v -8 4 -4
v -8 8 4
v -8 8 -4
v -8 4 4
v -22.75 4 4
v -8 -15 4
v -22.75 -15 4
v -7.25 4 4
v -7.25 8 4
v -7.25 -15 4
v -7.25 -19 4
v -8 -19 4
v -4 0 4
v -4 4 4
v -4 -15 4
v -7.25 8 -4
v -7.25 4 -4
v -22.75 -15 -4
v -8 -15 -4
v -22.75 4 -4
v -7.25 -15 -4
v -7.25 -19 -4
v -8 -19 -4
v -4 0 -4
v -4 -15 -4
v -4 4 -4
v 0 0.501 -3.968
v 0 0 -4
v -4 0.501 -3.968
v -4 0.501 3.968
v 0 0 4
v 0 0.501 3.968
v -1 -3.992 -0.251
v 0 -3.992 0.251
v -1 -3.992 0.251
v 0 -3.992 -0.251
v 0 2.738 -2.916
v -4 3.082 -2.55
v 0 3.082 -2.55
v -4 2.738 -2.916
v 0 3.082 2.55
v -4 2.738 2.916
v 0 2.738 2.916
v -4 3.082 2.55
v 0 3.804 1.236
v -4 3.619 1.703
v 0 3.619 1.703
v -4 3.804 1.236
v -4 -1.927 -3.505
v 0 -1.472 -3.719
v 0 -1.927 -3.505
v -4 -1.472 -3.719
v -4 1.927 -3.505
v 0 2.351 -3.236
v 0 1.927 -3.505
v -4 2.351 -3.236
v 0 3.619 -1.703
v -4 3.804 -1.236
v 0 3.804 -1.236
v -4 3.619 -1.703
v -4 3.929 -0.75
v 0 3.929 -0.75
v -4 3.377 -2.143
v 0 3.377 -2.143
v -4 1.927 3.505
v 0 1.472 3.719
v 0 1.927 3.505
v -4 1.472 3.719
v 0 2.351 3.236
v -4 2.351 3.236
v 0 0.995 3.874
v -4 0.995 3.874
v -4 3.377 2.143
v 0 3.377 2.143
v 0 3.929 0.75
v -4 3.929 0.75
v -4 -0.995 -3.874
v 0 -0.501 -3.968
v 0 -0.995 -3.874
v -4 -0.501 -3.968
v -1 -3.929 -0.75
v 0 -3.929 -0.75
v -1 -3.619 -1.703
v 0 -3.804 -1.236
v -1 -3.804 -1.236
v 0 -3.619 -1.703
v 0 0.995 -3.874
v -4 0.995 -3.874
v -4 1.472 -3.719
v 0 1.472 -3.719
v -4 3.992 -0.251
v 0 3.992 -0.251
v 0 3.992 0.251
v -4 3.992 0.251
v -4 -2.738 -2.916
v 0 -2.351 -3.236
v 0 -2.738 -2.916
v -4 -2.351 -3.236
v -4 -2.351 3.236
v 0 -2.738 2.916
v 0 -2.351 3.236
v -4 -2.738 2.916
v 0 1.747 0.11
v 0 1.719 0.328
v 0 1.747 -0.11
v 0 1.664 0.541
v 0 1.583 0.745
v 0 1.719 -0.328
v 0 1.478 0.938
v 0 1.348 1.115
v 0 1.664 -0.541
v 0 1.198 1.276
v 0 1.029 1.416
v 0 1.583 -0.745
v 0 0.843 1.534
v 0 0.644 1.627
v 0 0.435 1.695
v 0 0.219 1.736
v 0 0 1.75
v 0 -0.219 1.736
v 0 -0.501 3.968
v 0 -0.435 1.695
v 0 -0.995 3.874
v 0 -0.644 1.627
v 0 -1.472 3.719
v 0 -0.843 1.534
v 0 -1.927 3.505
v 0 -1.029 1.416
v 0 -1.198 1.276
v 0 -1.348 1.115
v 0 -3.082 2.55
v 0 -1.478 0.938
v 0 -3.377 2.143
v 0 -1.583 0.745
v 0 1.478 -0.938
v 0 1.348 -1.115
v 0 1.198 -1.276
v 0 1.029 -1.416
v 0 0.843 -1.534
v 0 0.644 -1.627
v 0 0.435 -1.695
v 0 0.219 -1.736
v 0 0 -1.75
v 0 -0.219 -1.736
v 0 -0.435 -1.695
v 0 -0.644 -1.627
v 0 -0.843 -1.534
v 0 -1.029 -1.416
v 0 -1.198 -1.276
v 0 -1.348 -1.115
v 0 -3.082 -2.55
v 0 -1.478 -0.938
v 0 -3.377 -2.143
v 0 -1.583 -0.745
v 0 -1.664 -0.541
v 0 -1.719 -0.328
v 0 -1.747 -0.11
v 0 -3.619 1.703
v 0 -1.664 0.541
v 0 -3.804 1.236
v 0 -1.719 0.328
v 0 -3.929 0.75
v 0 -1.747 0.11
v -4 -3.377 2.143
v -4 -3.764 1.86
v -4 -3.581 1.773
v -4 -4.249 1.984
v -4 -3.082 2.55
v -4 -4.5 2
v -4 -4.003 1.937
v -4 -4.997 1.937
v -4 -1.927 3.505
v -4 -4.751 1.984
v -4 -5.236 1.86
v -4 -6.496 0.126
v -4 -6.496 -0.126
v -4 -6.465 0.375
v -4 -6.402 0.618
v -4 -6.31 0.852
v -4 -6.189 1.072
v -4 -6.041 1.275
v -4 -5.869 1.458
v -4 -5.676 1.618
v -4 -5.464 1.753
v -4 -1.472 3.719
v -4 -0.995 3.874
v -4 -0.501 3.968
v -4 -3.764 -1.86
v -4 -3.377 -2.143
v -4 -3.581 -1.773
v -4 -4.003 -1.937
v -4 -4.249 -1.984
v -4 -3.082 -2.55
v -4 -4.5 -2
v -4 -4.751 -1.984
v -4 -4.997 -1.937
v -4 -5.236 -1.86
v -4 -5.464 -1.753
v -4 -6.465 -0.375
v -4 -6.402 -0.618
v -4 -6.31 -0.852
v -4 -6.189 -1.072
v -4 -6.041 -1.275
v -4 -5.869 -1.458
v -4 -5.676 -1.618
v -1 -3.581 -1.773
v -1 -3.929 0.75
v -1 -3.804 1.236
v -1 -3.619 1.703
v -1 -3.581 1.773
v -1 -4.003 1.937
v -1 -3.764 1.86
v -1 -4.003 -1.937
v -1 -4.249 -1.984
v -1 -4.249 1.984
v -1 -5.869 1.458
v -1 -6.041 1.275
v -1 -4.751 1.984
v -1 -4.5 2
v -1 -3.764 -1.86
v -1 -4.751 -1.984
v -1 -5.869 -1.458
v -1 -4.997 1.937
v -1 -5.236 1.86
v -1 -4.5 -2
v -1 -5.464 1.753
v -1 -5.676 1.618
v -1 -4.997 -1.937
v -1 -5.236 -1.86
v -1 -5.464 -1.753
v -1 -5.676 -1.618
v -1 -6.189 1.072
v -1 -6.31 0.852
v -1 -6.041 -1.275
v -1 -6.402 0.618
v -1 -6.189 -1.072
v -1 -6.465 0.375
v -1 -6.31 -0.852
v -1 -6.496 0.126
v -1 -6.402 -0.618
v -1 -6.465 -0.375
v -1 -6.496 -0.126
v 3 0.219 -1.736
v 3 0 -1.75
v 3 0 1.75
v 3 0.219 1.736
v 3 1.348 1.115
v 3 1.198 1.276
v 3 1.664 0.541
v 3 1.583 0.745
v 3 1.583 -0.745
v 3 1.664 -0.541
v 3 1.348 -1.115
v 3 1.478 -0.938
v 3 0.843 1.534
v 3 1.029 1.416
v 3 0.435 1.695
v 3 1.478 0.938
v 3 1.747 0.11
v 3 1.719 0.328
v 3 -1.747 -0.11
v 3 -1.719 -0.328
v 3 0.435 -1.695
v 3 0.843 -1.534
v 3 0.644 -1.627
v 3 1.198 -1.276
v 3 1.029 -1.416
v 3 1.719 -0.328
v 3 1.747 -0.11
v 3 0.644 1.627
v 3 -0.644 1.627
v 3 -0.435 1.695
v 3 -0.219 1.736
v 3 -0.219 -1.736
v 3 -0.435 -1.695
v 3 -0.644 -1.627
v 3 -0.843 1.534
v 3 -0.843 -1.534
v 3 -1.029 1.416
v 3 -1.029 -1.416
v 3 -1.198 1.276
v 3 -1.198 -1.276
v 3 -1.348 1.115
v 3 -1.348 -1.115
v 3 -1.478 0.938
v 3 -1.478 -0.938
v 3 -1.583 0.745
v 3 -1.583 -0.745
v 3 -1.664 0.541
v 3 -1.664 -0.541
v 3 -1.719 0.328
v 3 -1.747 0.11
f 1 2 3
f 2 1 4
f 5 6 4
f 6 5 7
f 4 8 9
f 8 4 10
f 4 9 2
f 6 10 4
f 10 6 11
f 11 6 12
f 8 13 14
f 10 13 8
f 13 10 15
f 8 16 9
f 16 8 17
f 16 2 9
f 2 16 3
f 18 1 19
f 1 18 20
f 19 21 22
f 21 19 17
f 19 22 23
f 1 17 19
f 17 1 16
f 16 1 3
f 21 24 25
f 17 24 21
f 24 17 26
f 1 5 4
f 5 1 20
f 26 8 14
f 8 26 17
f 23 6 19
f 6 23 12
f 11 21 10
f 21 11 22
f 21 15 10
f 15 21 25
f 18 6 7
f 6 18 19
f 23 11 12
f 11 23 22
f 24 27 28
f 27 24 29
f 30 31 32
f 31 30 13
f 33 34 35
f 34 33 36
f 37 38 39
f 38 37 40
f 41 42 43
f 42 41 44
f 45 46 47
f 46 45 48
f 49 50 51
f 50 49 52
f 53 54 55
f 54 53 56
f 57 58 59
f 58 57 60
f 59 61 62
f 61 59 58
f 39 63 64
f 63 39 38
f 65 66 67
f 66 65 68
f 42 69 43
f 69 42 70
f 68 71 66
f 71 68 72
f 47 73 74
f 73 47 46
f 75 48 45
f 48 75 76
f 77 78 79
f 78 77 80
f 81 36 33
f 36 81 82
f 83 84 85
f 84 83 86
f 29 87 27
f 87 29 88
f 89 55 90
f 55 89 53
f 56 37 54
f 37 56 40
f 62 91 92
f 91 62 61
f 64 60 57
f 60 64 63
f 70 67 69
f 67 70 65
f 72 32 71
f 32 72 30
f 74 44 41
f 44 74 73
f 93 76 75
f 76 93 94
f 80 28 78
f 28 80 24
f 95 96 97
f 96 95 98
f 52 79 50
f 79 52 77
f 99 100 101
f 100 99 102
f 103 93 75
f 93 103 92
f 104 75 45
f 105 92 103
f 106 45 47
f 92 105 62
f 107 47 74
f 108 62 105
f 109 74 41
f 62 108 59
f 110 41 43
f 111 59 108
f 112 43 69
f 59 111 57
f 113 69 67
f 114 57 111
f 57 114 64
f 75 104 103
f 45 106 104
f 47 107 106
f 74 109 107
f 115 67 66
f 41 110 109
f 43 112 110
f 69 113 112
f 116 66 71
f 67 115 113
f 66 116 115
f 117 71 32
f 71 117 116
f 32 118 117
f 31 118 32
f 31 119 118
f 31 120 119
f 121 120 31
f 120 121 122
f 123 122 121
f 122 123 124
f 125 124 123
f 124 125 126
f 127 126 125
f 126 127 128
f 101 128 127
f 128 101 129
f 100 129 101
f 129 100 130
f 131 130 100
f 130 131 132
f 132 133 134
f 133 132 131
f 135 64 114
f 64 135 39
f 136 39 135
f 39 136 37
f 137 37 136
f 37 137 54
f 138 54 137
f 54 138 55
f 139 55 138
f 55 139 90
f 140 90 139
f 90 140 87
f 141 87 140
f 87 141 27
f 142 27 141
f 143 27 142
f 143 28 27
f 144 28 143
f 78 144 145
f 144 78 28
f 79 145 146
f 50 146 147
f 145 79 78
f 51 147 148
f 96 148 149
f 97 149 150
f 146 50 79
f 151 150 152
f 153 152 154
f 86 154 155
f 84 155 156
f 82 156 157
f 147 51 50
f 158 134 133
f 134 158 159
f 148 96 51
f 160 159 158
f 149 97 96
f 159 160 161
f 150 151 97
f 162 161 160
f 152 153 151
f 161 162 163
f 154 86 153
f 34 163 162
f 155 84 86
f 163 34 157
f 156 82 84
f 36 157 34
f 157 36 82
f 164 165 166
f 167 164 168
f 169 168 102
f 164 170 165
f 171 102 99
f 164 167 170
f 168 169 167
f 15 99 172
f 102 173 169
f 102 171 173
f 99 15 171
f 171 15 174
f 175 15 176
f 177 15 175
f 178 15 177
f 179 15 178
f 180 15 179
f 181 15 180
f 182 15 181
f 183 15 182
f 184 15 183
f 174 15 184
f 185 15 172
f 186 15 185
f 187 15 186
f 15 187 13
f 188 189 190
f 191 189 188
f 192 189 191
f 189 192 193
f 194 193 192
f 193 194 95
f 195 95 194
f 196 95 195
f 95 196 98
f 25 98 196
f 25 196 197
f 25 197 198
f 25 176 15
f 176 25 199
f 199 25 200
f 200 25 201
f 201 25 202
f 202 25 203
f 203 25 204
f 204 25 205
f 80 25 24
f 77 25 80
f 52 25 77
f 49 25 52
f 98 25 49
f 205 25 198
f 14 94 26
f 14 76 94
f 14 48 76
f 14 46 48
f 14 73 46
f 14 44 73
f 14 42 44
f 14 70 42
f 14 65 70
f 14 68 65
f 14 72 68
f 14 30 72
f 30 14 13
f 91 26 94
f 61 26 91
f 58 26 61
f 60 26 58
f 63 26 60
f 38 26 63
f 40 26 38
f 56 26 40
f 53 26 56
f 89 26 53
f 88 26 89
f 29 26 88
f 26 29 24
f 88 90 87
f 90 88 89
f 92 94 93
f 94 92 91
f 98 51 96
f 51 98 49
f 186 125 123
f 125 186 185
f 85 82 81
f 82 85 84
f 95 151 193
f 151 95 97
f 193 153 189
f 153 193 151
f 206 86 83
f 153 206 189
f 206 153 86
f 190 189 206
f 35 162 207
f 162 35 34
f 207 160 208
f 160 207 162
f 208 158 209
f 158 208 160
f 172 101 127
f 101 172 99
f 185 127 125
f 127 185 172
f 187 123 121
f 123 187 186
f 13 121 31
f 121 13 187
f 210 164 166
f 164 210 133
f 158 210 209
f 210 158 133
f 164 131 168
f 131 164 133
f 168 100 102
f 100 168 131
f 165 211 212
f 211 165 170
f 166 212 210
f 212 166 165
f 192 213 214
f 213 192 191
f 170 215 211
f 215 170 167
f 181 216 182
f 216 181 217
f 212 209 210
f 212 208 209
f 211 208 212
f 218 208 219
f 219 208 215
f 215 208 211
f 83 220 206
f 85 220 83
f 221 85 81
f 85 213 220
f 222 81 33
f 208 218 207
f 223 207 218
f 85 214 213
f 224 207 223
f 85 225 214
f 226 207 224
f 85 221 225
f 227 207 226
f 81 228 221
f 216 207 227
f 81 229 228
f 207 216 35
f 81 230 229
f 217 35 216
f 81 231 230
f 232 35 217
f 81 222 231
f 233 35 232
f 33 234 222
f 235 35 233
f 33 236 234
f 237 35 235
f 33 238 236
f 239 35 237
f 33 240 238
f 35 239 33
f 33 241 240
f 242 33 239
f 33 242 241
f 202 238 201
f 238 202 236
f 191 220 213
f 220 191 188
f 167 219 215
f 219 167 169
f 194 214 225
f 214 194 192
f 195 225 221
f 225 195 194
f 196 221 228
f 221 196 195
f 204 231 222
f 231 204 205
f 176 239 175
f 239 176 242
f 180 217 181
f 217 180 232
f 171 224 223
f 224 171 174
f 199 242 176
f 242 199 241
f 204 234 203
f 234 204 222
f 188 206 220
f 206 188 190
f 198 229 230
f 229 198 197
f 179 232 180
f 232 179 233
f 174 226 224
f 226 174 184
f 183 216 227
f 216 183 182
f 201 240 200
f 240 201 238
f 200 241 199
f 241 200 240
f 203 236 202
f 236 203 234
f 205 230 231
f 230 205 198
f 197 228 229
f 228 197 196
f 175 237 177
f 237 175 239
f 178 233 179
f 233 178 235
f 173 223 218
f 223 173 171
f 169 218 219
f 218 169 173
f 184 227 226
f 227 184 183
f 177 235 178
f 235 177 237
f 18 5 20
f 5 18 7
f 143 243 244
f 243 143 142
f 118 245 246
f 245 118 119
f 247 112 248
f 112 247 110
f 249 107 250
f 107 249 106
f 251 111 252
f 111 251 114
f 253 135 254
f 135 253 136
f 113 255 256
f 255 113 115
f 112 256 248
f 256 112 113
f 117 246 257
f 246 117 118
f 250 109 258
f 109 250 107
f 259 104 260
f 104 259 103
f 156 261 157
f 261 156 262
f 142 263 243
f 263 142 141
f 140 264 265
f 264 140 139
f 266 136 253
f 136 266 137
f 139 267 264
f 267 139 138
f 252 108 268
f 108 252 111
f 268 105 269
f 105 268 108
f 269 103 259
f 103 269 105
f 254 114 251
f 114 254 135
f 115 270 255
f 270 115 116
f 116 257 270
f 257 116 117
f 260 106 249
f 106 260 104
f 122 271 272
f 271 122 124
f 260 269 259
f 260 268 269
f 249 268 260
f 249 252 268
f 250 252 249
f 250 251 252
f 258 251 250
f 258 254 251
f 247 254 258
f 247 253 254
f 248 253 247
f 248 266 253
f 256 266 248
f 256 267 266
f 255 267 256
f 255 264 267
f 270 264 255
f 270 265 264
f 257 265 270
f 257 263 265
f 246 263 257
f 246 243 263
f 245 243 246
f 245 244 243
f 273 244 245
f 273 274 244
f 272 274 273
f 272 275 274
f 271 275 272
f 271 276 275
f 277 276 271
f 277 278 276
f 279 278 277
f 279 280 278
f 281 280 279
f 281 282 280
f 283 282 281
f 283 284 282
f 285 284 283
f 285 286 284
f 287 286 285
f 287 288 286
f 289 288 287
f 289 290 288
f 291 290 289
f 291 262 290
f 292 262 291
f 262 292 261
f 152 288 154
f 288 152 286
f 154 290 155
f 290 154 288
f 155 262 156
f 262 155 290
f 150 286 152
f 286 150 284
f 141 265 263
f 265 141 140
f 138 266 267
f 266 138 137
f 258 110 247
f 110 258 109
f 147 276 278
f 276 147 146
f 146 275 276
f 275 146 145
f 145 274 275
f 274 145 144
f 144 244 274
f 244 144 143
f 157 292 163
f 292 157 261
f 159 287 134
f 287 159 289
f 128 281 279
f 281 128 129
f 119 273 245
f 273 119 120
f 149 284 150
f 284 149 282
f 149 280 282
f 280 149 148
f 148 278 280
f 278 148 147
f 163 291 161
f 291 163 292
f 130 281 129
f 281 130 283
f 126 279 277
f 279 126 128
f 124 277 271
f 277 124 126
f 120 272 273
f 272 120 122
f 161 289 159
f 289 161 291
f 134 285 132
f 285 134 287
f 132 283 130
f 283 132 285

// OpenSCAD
$fn = 50;

// Main Body
bodyDx = 18.75;
bodyDy = 19;
bodyDz = 8;

// Wings
wingDx = 0.75;
wingDy = 4;
wingDz = bodyDz;

// Big gear on top
bigGearR = bodyDz/2;
bigGearDx = 4;

// Small gear on top
smallGearR = 2;
smallGearDx = 3;

// Main connector
connectorR = 1.75;
connectorDx = 3;

module microServo_body() {
	cube(size=[bodyDx,bodyDy,bodyDz], center=false);
}

module microServo_wings() {
	tLeft = [bodyDx-4,bodyDy,0];
	translate(tLeft)
		cube(size=[wingDx,wingDy,wingDz]);
	
	tRight = [bodyDx-4,-wingDy,0];
	translate(tRight)
		cube(size=[wingDx,wingDy,wingDz]);
}

module microServo_topgears() {
	tBigGear = [bodyDx, bodyDy-bigGearR, bigGearR];
	translate(tBigGear)
		rotate([0,90,0])
			cylinder(h=bigGearDx,r=bigGearR);

	
	tSmallGear = [bodyDx, bodyDy-8.5, bodyDz/2];
	translate(tSmallGear)
		rotate([0,90,0])
			cylinder(h=smallGearDx,r=smallGearR);
}

module microServo_connector() {
	tConnector = [bodyDx+bigGearDx, bodyDy-bigGearR, bodyDz/2];
	translate(tConnector)
		rotate([0,90,0])
			cylinder(h=connectorDx,r=connectorR);
}


// Micro Servo
module MicroServo() {
	translate(-[bodyDx+bigGearDx, bodyDy-bigGearR, bigGearR]) {
		color("green") {
			microServo_body();
			microServo_wings();
			microServo_topgears();
		}
		color("red")
			microServo_connector();
	}
}



MicroServo();
